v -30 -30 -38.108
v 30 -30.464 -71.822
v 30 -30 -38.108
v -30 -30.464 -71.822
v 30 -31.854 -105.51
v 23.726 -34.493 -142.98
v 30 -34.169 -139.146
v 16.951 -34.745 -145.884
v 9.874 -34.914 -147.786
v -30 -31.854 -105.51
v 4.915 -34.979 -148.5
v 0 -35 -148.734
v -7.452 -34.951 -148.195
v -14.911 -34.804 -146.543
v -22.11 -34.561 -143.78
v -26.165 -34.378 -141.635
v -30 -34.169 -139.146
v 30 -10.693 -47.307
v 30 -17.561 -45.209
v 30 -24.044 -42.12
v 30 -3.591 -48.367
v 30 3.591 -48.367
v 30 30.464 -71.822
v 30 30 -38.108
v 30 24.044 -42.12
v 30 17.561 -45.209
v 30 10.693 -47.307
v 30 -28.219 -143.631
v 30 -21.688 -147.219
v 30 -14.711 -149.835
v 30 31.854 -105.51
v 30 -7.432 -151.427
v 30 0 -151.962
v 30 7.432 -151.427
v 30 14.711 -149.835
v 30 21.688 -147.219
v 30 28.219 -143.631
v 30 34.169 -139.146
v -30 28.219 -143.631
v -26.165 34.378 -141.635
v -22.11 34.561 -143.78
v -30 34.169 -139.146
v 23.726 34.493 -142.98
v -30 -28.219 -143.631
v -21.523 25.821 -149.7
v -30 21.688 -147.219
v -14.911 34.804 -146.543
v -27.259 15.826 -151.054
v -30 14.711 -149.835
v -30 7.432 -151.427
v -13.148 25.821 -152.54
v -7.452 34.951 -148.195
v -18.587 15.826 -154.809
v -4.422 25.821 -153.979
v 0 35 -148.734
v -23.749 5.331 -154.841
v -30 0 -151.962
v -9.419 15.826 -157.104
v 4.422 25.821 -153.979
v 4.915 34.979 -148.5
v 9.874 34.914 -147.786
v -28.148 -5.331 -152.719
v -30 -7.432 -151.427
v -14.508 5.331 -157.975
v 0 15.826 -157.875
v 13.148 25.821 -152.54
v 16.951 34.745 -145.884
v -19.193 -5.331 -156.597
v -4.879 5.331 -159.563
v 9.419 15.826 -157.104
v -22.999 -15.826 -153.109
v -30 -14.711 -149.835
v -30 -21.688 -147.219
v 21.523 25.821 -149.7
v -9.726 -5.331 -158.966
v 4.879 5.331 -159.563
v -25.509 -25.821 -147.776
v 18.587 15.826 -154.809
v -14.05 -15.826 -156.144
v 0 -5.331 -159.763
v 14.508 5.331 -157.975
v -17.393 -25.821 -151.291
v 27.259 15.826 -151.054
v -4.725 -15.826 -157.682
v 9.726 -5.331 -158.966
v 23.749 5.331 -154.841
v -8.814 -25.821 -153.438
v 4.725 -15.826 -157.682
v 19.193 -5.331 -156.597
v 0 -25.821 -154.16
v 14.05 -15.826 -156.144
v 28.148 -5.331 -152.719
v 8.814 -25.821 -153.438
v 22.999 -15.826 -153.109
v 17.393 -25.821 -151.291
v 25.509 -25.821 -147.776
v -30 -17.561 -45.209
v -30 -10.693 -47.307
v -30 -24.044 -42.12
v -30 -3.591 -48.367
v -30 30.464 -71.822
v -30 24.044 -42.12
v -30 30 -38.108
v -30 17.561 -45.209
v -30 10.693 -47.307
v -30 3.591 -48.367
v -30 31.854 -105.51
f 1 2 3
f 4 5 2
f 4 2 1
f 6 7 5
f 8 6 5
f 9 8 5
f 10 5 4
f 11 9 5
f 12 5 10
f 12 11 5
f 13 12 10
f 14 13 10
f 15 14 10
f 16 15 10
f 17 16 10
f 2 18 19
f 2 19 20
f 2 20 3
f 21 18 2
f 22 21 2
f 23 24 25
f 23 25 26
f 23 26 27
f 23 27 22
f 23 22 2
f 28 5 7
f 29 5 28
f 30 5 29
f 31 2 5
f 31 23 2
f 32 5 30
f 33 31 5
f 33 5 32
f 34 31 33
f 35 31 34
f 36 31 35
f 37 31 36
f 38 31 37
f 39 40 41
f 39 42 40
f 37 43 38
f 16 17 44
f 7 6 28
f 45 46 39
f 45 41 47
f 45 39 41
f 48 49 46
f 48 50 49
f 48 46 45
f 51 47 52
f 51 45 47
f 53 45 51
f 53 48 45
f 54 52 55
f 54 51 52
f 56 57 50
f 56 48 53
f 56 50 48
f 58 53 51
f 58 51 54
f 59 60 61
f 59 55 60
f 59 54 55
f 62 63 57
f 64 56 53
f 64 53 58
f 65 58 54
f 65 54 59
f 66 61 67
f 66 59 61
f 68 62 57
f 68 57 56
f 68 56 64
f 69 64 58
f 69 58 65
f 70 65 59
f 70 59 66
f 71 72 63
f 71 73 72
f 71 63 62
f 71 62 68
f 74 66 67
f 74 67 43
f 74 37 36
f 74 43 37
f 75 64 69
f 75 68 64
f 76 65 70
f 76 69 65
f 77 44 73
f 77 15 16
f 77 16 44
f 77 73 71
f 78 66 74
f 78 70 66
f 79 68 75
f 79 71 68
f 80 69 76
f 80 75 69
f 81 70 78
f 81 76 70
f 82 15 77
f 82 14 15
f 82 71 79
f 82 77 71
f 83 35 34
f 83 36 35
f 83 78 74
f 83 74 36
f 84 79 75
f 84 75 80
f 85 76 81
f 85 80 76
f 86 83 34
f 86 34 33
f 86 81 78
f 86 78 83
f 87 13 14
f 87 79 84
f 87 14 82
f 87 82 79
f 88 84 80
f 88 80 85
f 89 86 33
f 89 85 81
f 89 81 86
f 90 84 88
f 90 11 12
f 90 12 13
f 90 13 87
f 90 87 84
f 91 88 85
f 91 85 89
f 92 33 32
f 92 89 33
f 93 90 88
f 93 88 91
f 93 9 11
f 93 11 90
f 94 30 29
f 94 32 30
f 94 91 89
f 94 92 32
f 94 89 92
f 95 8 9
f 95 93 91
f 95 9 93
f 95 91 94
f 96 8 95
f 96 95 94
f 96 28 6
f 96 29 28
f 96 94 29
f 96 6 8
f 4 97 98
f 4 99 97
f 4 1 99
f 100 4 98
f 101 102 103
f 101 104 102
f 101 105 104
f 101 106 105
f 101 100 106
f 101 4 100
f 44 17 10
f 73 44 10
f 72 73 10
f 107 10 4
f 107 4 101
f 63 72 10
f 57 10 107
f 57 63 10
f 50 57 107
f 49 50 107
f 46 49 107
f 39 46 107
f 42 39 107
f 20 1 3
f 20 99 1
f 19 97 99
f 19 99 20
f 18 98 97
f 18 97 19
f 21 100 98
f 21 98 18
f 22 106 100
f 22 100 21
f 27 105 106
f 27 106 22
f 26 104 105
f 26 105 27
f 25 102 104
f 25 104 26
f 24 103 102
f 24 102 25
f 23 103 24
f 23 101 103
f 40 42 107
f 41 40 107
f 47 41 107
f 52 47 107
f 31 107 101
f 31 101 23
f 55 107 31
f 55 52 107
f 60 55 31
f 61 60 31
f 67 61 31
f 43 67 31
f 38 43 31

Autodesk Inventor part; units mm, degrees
ref_plane "Work Plane2" through (0, -32.5, -80) normal (0, 0, -1) x (0, 1, 0)
ref_plane "Work Plane1" through (0, 0, 27.5) normal (0, 0, 1) x (1, 0, 0)
ref_plane "Work Plane3" through (0, 0, -200) normal (0, 0, -1) x (-1, 0, 0)
sketch "Sketch11" plane through (0, 0, 0) normal (1, 0, 0) x (0, 1, 0)
  line L0 (-309.4604, 0) -> (1517.2621, 0) construction
  line L1 (0, -249.7) -> (0, 98.2) projected
  circle A0 centre (0, 0) radius 32.5
  circle A1 centre (0, 0) radius 48.5
  line L2 (-30, -38.1084) -> (-30, -151.9615)
  line L3 (-30, -151.9615) -> (30, -151.9615)
  line L4 (30, -151.9615) -> (30, -38.1084)
  arc A2 (-30, -151.9615) -> (30, -151.9615) centre (0, -100) ccw
  arc A3 (30, -151.9615) -> (50, -133.1662) centre (0, -100) ccw
  line L5 (0, -180) -> (50, -180)
  line L6 (50, -180) -> (50, -133.1662)
  arc A4 (30, -38.1084) -> (35, -148.734) centre (1256.3018, -38.1084) ccw
  point P0 (-30, -151.9615)
  point P1 (0, -160)
  point P2 (0, -151.9615)
  point P3 (0, -185.7103)
  point P4 (0, -160)
  point P5 (0, -48.5)
  dimension "d77" = 65
  dimension "d78" = 97
  dimension "d79" = 60
  dimension "d85" = 20
  dimension "d86" = 20
  dimension "d87" = 60
  dimension "d89" = 35
  dimension "d90" = 160
extrude "Extrusion11" add sketch "Sketch11" along normal mid plane 60 contours L1 A1 L4 L3 | L4 A4 A3
revolve "Revolution1" add sketch "Sketch11" angle 180 mid plane about axis through (0, 0, -10) along (0, 0, 1) picked at (16.8404, -153.4348) contours L1 L3 A2
revolve "Revolution2" cut sketch "Sketch11" angle 360 about axis through (0, 0, -10) along (0, 0, 1) contours L1 A2 A3 L6 L5
mirror "Mirror1" about plane through (0, 0, 0) normal (0, 1, 0)
sketch "Sketch6" plane through (0, 0, 0) normal (1, 0, 0) x (0, 1, 0)
  circle A0 centre (0, 0) radius 32.5
  line L0 (-32.5, 0) -> (-32.5, -80)
  line L1 (-32.5, -80) -> (32.5, -80)
  line L2 (32.5, -80) -> (32.5, 0)
  line L3 (0, 0) -> (0, -80) construction
  line L4 (-32.5, -60) -> (32.5, -60)
  circle A1 centre (0, 0) radius 48.5
  point P0 (32.5, -36)
  point P1 (23.3184, -32.5)
  point P2 (0, -40)
  point P3 (-32.5, -36)
  dimension "d38" = 65
  dimension "d39" = 80
  dimension "d74" = 97
  dimension "d75" = 20
  dimension "d48" = 10
  dimension "d73" = 55
  dimension "d52" = 120
sketch "Sketch5" plane through (0, 0, -171) normal (0, 0, -1) x (-1, 0, 0)
  circle A0 centre (0, 0) radius 10
  point P0 (0, 0)
  dimension "d35" = 20
properties part number "shank_2"
